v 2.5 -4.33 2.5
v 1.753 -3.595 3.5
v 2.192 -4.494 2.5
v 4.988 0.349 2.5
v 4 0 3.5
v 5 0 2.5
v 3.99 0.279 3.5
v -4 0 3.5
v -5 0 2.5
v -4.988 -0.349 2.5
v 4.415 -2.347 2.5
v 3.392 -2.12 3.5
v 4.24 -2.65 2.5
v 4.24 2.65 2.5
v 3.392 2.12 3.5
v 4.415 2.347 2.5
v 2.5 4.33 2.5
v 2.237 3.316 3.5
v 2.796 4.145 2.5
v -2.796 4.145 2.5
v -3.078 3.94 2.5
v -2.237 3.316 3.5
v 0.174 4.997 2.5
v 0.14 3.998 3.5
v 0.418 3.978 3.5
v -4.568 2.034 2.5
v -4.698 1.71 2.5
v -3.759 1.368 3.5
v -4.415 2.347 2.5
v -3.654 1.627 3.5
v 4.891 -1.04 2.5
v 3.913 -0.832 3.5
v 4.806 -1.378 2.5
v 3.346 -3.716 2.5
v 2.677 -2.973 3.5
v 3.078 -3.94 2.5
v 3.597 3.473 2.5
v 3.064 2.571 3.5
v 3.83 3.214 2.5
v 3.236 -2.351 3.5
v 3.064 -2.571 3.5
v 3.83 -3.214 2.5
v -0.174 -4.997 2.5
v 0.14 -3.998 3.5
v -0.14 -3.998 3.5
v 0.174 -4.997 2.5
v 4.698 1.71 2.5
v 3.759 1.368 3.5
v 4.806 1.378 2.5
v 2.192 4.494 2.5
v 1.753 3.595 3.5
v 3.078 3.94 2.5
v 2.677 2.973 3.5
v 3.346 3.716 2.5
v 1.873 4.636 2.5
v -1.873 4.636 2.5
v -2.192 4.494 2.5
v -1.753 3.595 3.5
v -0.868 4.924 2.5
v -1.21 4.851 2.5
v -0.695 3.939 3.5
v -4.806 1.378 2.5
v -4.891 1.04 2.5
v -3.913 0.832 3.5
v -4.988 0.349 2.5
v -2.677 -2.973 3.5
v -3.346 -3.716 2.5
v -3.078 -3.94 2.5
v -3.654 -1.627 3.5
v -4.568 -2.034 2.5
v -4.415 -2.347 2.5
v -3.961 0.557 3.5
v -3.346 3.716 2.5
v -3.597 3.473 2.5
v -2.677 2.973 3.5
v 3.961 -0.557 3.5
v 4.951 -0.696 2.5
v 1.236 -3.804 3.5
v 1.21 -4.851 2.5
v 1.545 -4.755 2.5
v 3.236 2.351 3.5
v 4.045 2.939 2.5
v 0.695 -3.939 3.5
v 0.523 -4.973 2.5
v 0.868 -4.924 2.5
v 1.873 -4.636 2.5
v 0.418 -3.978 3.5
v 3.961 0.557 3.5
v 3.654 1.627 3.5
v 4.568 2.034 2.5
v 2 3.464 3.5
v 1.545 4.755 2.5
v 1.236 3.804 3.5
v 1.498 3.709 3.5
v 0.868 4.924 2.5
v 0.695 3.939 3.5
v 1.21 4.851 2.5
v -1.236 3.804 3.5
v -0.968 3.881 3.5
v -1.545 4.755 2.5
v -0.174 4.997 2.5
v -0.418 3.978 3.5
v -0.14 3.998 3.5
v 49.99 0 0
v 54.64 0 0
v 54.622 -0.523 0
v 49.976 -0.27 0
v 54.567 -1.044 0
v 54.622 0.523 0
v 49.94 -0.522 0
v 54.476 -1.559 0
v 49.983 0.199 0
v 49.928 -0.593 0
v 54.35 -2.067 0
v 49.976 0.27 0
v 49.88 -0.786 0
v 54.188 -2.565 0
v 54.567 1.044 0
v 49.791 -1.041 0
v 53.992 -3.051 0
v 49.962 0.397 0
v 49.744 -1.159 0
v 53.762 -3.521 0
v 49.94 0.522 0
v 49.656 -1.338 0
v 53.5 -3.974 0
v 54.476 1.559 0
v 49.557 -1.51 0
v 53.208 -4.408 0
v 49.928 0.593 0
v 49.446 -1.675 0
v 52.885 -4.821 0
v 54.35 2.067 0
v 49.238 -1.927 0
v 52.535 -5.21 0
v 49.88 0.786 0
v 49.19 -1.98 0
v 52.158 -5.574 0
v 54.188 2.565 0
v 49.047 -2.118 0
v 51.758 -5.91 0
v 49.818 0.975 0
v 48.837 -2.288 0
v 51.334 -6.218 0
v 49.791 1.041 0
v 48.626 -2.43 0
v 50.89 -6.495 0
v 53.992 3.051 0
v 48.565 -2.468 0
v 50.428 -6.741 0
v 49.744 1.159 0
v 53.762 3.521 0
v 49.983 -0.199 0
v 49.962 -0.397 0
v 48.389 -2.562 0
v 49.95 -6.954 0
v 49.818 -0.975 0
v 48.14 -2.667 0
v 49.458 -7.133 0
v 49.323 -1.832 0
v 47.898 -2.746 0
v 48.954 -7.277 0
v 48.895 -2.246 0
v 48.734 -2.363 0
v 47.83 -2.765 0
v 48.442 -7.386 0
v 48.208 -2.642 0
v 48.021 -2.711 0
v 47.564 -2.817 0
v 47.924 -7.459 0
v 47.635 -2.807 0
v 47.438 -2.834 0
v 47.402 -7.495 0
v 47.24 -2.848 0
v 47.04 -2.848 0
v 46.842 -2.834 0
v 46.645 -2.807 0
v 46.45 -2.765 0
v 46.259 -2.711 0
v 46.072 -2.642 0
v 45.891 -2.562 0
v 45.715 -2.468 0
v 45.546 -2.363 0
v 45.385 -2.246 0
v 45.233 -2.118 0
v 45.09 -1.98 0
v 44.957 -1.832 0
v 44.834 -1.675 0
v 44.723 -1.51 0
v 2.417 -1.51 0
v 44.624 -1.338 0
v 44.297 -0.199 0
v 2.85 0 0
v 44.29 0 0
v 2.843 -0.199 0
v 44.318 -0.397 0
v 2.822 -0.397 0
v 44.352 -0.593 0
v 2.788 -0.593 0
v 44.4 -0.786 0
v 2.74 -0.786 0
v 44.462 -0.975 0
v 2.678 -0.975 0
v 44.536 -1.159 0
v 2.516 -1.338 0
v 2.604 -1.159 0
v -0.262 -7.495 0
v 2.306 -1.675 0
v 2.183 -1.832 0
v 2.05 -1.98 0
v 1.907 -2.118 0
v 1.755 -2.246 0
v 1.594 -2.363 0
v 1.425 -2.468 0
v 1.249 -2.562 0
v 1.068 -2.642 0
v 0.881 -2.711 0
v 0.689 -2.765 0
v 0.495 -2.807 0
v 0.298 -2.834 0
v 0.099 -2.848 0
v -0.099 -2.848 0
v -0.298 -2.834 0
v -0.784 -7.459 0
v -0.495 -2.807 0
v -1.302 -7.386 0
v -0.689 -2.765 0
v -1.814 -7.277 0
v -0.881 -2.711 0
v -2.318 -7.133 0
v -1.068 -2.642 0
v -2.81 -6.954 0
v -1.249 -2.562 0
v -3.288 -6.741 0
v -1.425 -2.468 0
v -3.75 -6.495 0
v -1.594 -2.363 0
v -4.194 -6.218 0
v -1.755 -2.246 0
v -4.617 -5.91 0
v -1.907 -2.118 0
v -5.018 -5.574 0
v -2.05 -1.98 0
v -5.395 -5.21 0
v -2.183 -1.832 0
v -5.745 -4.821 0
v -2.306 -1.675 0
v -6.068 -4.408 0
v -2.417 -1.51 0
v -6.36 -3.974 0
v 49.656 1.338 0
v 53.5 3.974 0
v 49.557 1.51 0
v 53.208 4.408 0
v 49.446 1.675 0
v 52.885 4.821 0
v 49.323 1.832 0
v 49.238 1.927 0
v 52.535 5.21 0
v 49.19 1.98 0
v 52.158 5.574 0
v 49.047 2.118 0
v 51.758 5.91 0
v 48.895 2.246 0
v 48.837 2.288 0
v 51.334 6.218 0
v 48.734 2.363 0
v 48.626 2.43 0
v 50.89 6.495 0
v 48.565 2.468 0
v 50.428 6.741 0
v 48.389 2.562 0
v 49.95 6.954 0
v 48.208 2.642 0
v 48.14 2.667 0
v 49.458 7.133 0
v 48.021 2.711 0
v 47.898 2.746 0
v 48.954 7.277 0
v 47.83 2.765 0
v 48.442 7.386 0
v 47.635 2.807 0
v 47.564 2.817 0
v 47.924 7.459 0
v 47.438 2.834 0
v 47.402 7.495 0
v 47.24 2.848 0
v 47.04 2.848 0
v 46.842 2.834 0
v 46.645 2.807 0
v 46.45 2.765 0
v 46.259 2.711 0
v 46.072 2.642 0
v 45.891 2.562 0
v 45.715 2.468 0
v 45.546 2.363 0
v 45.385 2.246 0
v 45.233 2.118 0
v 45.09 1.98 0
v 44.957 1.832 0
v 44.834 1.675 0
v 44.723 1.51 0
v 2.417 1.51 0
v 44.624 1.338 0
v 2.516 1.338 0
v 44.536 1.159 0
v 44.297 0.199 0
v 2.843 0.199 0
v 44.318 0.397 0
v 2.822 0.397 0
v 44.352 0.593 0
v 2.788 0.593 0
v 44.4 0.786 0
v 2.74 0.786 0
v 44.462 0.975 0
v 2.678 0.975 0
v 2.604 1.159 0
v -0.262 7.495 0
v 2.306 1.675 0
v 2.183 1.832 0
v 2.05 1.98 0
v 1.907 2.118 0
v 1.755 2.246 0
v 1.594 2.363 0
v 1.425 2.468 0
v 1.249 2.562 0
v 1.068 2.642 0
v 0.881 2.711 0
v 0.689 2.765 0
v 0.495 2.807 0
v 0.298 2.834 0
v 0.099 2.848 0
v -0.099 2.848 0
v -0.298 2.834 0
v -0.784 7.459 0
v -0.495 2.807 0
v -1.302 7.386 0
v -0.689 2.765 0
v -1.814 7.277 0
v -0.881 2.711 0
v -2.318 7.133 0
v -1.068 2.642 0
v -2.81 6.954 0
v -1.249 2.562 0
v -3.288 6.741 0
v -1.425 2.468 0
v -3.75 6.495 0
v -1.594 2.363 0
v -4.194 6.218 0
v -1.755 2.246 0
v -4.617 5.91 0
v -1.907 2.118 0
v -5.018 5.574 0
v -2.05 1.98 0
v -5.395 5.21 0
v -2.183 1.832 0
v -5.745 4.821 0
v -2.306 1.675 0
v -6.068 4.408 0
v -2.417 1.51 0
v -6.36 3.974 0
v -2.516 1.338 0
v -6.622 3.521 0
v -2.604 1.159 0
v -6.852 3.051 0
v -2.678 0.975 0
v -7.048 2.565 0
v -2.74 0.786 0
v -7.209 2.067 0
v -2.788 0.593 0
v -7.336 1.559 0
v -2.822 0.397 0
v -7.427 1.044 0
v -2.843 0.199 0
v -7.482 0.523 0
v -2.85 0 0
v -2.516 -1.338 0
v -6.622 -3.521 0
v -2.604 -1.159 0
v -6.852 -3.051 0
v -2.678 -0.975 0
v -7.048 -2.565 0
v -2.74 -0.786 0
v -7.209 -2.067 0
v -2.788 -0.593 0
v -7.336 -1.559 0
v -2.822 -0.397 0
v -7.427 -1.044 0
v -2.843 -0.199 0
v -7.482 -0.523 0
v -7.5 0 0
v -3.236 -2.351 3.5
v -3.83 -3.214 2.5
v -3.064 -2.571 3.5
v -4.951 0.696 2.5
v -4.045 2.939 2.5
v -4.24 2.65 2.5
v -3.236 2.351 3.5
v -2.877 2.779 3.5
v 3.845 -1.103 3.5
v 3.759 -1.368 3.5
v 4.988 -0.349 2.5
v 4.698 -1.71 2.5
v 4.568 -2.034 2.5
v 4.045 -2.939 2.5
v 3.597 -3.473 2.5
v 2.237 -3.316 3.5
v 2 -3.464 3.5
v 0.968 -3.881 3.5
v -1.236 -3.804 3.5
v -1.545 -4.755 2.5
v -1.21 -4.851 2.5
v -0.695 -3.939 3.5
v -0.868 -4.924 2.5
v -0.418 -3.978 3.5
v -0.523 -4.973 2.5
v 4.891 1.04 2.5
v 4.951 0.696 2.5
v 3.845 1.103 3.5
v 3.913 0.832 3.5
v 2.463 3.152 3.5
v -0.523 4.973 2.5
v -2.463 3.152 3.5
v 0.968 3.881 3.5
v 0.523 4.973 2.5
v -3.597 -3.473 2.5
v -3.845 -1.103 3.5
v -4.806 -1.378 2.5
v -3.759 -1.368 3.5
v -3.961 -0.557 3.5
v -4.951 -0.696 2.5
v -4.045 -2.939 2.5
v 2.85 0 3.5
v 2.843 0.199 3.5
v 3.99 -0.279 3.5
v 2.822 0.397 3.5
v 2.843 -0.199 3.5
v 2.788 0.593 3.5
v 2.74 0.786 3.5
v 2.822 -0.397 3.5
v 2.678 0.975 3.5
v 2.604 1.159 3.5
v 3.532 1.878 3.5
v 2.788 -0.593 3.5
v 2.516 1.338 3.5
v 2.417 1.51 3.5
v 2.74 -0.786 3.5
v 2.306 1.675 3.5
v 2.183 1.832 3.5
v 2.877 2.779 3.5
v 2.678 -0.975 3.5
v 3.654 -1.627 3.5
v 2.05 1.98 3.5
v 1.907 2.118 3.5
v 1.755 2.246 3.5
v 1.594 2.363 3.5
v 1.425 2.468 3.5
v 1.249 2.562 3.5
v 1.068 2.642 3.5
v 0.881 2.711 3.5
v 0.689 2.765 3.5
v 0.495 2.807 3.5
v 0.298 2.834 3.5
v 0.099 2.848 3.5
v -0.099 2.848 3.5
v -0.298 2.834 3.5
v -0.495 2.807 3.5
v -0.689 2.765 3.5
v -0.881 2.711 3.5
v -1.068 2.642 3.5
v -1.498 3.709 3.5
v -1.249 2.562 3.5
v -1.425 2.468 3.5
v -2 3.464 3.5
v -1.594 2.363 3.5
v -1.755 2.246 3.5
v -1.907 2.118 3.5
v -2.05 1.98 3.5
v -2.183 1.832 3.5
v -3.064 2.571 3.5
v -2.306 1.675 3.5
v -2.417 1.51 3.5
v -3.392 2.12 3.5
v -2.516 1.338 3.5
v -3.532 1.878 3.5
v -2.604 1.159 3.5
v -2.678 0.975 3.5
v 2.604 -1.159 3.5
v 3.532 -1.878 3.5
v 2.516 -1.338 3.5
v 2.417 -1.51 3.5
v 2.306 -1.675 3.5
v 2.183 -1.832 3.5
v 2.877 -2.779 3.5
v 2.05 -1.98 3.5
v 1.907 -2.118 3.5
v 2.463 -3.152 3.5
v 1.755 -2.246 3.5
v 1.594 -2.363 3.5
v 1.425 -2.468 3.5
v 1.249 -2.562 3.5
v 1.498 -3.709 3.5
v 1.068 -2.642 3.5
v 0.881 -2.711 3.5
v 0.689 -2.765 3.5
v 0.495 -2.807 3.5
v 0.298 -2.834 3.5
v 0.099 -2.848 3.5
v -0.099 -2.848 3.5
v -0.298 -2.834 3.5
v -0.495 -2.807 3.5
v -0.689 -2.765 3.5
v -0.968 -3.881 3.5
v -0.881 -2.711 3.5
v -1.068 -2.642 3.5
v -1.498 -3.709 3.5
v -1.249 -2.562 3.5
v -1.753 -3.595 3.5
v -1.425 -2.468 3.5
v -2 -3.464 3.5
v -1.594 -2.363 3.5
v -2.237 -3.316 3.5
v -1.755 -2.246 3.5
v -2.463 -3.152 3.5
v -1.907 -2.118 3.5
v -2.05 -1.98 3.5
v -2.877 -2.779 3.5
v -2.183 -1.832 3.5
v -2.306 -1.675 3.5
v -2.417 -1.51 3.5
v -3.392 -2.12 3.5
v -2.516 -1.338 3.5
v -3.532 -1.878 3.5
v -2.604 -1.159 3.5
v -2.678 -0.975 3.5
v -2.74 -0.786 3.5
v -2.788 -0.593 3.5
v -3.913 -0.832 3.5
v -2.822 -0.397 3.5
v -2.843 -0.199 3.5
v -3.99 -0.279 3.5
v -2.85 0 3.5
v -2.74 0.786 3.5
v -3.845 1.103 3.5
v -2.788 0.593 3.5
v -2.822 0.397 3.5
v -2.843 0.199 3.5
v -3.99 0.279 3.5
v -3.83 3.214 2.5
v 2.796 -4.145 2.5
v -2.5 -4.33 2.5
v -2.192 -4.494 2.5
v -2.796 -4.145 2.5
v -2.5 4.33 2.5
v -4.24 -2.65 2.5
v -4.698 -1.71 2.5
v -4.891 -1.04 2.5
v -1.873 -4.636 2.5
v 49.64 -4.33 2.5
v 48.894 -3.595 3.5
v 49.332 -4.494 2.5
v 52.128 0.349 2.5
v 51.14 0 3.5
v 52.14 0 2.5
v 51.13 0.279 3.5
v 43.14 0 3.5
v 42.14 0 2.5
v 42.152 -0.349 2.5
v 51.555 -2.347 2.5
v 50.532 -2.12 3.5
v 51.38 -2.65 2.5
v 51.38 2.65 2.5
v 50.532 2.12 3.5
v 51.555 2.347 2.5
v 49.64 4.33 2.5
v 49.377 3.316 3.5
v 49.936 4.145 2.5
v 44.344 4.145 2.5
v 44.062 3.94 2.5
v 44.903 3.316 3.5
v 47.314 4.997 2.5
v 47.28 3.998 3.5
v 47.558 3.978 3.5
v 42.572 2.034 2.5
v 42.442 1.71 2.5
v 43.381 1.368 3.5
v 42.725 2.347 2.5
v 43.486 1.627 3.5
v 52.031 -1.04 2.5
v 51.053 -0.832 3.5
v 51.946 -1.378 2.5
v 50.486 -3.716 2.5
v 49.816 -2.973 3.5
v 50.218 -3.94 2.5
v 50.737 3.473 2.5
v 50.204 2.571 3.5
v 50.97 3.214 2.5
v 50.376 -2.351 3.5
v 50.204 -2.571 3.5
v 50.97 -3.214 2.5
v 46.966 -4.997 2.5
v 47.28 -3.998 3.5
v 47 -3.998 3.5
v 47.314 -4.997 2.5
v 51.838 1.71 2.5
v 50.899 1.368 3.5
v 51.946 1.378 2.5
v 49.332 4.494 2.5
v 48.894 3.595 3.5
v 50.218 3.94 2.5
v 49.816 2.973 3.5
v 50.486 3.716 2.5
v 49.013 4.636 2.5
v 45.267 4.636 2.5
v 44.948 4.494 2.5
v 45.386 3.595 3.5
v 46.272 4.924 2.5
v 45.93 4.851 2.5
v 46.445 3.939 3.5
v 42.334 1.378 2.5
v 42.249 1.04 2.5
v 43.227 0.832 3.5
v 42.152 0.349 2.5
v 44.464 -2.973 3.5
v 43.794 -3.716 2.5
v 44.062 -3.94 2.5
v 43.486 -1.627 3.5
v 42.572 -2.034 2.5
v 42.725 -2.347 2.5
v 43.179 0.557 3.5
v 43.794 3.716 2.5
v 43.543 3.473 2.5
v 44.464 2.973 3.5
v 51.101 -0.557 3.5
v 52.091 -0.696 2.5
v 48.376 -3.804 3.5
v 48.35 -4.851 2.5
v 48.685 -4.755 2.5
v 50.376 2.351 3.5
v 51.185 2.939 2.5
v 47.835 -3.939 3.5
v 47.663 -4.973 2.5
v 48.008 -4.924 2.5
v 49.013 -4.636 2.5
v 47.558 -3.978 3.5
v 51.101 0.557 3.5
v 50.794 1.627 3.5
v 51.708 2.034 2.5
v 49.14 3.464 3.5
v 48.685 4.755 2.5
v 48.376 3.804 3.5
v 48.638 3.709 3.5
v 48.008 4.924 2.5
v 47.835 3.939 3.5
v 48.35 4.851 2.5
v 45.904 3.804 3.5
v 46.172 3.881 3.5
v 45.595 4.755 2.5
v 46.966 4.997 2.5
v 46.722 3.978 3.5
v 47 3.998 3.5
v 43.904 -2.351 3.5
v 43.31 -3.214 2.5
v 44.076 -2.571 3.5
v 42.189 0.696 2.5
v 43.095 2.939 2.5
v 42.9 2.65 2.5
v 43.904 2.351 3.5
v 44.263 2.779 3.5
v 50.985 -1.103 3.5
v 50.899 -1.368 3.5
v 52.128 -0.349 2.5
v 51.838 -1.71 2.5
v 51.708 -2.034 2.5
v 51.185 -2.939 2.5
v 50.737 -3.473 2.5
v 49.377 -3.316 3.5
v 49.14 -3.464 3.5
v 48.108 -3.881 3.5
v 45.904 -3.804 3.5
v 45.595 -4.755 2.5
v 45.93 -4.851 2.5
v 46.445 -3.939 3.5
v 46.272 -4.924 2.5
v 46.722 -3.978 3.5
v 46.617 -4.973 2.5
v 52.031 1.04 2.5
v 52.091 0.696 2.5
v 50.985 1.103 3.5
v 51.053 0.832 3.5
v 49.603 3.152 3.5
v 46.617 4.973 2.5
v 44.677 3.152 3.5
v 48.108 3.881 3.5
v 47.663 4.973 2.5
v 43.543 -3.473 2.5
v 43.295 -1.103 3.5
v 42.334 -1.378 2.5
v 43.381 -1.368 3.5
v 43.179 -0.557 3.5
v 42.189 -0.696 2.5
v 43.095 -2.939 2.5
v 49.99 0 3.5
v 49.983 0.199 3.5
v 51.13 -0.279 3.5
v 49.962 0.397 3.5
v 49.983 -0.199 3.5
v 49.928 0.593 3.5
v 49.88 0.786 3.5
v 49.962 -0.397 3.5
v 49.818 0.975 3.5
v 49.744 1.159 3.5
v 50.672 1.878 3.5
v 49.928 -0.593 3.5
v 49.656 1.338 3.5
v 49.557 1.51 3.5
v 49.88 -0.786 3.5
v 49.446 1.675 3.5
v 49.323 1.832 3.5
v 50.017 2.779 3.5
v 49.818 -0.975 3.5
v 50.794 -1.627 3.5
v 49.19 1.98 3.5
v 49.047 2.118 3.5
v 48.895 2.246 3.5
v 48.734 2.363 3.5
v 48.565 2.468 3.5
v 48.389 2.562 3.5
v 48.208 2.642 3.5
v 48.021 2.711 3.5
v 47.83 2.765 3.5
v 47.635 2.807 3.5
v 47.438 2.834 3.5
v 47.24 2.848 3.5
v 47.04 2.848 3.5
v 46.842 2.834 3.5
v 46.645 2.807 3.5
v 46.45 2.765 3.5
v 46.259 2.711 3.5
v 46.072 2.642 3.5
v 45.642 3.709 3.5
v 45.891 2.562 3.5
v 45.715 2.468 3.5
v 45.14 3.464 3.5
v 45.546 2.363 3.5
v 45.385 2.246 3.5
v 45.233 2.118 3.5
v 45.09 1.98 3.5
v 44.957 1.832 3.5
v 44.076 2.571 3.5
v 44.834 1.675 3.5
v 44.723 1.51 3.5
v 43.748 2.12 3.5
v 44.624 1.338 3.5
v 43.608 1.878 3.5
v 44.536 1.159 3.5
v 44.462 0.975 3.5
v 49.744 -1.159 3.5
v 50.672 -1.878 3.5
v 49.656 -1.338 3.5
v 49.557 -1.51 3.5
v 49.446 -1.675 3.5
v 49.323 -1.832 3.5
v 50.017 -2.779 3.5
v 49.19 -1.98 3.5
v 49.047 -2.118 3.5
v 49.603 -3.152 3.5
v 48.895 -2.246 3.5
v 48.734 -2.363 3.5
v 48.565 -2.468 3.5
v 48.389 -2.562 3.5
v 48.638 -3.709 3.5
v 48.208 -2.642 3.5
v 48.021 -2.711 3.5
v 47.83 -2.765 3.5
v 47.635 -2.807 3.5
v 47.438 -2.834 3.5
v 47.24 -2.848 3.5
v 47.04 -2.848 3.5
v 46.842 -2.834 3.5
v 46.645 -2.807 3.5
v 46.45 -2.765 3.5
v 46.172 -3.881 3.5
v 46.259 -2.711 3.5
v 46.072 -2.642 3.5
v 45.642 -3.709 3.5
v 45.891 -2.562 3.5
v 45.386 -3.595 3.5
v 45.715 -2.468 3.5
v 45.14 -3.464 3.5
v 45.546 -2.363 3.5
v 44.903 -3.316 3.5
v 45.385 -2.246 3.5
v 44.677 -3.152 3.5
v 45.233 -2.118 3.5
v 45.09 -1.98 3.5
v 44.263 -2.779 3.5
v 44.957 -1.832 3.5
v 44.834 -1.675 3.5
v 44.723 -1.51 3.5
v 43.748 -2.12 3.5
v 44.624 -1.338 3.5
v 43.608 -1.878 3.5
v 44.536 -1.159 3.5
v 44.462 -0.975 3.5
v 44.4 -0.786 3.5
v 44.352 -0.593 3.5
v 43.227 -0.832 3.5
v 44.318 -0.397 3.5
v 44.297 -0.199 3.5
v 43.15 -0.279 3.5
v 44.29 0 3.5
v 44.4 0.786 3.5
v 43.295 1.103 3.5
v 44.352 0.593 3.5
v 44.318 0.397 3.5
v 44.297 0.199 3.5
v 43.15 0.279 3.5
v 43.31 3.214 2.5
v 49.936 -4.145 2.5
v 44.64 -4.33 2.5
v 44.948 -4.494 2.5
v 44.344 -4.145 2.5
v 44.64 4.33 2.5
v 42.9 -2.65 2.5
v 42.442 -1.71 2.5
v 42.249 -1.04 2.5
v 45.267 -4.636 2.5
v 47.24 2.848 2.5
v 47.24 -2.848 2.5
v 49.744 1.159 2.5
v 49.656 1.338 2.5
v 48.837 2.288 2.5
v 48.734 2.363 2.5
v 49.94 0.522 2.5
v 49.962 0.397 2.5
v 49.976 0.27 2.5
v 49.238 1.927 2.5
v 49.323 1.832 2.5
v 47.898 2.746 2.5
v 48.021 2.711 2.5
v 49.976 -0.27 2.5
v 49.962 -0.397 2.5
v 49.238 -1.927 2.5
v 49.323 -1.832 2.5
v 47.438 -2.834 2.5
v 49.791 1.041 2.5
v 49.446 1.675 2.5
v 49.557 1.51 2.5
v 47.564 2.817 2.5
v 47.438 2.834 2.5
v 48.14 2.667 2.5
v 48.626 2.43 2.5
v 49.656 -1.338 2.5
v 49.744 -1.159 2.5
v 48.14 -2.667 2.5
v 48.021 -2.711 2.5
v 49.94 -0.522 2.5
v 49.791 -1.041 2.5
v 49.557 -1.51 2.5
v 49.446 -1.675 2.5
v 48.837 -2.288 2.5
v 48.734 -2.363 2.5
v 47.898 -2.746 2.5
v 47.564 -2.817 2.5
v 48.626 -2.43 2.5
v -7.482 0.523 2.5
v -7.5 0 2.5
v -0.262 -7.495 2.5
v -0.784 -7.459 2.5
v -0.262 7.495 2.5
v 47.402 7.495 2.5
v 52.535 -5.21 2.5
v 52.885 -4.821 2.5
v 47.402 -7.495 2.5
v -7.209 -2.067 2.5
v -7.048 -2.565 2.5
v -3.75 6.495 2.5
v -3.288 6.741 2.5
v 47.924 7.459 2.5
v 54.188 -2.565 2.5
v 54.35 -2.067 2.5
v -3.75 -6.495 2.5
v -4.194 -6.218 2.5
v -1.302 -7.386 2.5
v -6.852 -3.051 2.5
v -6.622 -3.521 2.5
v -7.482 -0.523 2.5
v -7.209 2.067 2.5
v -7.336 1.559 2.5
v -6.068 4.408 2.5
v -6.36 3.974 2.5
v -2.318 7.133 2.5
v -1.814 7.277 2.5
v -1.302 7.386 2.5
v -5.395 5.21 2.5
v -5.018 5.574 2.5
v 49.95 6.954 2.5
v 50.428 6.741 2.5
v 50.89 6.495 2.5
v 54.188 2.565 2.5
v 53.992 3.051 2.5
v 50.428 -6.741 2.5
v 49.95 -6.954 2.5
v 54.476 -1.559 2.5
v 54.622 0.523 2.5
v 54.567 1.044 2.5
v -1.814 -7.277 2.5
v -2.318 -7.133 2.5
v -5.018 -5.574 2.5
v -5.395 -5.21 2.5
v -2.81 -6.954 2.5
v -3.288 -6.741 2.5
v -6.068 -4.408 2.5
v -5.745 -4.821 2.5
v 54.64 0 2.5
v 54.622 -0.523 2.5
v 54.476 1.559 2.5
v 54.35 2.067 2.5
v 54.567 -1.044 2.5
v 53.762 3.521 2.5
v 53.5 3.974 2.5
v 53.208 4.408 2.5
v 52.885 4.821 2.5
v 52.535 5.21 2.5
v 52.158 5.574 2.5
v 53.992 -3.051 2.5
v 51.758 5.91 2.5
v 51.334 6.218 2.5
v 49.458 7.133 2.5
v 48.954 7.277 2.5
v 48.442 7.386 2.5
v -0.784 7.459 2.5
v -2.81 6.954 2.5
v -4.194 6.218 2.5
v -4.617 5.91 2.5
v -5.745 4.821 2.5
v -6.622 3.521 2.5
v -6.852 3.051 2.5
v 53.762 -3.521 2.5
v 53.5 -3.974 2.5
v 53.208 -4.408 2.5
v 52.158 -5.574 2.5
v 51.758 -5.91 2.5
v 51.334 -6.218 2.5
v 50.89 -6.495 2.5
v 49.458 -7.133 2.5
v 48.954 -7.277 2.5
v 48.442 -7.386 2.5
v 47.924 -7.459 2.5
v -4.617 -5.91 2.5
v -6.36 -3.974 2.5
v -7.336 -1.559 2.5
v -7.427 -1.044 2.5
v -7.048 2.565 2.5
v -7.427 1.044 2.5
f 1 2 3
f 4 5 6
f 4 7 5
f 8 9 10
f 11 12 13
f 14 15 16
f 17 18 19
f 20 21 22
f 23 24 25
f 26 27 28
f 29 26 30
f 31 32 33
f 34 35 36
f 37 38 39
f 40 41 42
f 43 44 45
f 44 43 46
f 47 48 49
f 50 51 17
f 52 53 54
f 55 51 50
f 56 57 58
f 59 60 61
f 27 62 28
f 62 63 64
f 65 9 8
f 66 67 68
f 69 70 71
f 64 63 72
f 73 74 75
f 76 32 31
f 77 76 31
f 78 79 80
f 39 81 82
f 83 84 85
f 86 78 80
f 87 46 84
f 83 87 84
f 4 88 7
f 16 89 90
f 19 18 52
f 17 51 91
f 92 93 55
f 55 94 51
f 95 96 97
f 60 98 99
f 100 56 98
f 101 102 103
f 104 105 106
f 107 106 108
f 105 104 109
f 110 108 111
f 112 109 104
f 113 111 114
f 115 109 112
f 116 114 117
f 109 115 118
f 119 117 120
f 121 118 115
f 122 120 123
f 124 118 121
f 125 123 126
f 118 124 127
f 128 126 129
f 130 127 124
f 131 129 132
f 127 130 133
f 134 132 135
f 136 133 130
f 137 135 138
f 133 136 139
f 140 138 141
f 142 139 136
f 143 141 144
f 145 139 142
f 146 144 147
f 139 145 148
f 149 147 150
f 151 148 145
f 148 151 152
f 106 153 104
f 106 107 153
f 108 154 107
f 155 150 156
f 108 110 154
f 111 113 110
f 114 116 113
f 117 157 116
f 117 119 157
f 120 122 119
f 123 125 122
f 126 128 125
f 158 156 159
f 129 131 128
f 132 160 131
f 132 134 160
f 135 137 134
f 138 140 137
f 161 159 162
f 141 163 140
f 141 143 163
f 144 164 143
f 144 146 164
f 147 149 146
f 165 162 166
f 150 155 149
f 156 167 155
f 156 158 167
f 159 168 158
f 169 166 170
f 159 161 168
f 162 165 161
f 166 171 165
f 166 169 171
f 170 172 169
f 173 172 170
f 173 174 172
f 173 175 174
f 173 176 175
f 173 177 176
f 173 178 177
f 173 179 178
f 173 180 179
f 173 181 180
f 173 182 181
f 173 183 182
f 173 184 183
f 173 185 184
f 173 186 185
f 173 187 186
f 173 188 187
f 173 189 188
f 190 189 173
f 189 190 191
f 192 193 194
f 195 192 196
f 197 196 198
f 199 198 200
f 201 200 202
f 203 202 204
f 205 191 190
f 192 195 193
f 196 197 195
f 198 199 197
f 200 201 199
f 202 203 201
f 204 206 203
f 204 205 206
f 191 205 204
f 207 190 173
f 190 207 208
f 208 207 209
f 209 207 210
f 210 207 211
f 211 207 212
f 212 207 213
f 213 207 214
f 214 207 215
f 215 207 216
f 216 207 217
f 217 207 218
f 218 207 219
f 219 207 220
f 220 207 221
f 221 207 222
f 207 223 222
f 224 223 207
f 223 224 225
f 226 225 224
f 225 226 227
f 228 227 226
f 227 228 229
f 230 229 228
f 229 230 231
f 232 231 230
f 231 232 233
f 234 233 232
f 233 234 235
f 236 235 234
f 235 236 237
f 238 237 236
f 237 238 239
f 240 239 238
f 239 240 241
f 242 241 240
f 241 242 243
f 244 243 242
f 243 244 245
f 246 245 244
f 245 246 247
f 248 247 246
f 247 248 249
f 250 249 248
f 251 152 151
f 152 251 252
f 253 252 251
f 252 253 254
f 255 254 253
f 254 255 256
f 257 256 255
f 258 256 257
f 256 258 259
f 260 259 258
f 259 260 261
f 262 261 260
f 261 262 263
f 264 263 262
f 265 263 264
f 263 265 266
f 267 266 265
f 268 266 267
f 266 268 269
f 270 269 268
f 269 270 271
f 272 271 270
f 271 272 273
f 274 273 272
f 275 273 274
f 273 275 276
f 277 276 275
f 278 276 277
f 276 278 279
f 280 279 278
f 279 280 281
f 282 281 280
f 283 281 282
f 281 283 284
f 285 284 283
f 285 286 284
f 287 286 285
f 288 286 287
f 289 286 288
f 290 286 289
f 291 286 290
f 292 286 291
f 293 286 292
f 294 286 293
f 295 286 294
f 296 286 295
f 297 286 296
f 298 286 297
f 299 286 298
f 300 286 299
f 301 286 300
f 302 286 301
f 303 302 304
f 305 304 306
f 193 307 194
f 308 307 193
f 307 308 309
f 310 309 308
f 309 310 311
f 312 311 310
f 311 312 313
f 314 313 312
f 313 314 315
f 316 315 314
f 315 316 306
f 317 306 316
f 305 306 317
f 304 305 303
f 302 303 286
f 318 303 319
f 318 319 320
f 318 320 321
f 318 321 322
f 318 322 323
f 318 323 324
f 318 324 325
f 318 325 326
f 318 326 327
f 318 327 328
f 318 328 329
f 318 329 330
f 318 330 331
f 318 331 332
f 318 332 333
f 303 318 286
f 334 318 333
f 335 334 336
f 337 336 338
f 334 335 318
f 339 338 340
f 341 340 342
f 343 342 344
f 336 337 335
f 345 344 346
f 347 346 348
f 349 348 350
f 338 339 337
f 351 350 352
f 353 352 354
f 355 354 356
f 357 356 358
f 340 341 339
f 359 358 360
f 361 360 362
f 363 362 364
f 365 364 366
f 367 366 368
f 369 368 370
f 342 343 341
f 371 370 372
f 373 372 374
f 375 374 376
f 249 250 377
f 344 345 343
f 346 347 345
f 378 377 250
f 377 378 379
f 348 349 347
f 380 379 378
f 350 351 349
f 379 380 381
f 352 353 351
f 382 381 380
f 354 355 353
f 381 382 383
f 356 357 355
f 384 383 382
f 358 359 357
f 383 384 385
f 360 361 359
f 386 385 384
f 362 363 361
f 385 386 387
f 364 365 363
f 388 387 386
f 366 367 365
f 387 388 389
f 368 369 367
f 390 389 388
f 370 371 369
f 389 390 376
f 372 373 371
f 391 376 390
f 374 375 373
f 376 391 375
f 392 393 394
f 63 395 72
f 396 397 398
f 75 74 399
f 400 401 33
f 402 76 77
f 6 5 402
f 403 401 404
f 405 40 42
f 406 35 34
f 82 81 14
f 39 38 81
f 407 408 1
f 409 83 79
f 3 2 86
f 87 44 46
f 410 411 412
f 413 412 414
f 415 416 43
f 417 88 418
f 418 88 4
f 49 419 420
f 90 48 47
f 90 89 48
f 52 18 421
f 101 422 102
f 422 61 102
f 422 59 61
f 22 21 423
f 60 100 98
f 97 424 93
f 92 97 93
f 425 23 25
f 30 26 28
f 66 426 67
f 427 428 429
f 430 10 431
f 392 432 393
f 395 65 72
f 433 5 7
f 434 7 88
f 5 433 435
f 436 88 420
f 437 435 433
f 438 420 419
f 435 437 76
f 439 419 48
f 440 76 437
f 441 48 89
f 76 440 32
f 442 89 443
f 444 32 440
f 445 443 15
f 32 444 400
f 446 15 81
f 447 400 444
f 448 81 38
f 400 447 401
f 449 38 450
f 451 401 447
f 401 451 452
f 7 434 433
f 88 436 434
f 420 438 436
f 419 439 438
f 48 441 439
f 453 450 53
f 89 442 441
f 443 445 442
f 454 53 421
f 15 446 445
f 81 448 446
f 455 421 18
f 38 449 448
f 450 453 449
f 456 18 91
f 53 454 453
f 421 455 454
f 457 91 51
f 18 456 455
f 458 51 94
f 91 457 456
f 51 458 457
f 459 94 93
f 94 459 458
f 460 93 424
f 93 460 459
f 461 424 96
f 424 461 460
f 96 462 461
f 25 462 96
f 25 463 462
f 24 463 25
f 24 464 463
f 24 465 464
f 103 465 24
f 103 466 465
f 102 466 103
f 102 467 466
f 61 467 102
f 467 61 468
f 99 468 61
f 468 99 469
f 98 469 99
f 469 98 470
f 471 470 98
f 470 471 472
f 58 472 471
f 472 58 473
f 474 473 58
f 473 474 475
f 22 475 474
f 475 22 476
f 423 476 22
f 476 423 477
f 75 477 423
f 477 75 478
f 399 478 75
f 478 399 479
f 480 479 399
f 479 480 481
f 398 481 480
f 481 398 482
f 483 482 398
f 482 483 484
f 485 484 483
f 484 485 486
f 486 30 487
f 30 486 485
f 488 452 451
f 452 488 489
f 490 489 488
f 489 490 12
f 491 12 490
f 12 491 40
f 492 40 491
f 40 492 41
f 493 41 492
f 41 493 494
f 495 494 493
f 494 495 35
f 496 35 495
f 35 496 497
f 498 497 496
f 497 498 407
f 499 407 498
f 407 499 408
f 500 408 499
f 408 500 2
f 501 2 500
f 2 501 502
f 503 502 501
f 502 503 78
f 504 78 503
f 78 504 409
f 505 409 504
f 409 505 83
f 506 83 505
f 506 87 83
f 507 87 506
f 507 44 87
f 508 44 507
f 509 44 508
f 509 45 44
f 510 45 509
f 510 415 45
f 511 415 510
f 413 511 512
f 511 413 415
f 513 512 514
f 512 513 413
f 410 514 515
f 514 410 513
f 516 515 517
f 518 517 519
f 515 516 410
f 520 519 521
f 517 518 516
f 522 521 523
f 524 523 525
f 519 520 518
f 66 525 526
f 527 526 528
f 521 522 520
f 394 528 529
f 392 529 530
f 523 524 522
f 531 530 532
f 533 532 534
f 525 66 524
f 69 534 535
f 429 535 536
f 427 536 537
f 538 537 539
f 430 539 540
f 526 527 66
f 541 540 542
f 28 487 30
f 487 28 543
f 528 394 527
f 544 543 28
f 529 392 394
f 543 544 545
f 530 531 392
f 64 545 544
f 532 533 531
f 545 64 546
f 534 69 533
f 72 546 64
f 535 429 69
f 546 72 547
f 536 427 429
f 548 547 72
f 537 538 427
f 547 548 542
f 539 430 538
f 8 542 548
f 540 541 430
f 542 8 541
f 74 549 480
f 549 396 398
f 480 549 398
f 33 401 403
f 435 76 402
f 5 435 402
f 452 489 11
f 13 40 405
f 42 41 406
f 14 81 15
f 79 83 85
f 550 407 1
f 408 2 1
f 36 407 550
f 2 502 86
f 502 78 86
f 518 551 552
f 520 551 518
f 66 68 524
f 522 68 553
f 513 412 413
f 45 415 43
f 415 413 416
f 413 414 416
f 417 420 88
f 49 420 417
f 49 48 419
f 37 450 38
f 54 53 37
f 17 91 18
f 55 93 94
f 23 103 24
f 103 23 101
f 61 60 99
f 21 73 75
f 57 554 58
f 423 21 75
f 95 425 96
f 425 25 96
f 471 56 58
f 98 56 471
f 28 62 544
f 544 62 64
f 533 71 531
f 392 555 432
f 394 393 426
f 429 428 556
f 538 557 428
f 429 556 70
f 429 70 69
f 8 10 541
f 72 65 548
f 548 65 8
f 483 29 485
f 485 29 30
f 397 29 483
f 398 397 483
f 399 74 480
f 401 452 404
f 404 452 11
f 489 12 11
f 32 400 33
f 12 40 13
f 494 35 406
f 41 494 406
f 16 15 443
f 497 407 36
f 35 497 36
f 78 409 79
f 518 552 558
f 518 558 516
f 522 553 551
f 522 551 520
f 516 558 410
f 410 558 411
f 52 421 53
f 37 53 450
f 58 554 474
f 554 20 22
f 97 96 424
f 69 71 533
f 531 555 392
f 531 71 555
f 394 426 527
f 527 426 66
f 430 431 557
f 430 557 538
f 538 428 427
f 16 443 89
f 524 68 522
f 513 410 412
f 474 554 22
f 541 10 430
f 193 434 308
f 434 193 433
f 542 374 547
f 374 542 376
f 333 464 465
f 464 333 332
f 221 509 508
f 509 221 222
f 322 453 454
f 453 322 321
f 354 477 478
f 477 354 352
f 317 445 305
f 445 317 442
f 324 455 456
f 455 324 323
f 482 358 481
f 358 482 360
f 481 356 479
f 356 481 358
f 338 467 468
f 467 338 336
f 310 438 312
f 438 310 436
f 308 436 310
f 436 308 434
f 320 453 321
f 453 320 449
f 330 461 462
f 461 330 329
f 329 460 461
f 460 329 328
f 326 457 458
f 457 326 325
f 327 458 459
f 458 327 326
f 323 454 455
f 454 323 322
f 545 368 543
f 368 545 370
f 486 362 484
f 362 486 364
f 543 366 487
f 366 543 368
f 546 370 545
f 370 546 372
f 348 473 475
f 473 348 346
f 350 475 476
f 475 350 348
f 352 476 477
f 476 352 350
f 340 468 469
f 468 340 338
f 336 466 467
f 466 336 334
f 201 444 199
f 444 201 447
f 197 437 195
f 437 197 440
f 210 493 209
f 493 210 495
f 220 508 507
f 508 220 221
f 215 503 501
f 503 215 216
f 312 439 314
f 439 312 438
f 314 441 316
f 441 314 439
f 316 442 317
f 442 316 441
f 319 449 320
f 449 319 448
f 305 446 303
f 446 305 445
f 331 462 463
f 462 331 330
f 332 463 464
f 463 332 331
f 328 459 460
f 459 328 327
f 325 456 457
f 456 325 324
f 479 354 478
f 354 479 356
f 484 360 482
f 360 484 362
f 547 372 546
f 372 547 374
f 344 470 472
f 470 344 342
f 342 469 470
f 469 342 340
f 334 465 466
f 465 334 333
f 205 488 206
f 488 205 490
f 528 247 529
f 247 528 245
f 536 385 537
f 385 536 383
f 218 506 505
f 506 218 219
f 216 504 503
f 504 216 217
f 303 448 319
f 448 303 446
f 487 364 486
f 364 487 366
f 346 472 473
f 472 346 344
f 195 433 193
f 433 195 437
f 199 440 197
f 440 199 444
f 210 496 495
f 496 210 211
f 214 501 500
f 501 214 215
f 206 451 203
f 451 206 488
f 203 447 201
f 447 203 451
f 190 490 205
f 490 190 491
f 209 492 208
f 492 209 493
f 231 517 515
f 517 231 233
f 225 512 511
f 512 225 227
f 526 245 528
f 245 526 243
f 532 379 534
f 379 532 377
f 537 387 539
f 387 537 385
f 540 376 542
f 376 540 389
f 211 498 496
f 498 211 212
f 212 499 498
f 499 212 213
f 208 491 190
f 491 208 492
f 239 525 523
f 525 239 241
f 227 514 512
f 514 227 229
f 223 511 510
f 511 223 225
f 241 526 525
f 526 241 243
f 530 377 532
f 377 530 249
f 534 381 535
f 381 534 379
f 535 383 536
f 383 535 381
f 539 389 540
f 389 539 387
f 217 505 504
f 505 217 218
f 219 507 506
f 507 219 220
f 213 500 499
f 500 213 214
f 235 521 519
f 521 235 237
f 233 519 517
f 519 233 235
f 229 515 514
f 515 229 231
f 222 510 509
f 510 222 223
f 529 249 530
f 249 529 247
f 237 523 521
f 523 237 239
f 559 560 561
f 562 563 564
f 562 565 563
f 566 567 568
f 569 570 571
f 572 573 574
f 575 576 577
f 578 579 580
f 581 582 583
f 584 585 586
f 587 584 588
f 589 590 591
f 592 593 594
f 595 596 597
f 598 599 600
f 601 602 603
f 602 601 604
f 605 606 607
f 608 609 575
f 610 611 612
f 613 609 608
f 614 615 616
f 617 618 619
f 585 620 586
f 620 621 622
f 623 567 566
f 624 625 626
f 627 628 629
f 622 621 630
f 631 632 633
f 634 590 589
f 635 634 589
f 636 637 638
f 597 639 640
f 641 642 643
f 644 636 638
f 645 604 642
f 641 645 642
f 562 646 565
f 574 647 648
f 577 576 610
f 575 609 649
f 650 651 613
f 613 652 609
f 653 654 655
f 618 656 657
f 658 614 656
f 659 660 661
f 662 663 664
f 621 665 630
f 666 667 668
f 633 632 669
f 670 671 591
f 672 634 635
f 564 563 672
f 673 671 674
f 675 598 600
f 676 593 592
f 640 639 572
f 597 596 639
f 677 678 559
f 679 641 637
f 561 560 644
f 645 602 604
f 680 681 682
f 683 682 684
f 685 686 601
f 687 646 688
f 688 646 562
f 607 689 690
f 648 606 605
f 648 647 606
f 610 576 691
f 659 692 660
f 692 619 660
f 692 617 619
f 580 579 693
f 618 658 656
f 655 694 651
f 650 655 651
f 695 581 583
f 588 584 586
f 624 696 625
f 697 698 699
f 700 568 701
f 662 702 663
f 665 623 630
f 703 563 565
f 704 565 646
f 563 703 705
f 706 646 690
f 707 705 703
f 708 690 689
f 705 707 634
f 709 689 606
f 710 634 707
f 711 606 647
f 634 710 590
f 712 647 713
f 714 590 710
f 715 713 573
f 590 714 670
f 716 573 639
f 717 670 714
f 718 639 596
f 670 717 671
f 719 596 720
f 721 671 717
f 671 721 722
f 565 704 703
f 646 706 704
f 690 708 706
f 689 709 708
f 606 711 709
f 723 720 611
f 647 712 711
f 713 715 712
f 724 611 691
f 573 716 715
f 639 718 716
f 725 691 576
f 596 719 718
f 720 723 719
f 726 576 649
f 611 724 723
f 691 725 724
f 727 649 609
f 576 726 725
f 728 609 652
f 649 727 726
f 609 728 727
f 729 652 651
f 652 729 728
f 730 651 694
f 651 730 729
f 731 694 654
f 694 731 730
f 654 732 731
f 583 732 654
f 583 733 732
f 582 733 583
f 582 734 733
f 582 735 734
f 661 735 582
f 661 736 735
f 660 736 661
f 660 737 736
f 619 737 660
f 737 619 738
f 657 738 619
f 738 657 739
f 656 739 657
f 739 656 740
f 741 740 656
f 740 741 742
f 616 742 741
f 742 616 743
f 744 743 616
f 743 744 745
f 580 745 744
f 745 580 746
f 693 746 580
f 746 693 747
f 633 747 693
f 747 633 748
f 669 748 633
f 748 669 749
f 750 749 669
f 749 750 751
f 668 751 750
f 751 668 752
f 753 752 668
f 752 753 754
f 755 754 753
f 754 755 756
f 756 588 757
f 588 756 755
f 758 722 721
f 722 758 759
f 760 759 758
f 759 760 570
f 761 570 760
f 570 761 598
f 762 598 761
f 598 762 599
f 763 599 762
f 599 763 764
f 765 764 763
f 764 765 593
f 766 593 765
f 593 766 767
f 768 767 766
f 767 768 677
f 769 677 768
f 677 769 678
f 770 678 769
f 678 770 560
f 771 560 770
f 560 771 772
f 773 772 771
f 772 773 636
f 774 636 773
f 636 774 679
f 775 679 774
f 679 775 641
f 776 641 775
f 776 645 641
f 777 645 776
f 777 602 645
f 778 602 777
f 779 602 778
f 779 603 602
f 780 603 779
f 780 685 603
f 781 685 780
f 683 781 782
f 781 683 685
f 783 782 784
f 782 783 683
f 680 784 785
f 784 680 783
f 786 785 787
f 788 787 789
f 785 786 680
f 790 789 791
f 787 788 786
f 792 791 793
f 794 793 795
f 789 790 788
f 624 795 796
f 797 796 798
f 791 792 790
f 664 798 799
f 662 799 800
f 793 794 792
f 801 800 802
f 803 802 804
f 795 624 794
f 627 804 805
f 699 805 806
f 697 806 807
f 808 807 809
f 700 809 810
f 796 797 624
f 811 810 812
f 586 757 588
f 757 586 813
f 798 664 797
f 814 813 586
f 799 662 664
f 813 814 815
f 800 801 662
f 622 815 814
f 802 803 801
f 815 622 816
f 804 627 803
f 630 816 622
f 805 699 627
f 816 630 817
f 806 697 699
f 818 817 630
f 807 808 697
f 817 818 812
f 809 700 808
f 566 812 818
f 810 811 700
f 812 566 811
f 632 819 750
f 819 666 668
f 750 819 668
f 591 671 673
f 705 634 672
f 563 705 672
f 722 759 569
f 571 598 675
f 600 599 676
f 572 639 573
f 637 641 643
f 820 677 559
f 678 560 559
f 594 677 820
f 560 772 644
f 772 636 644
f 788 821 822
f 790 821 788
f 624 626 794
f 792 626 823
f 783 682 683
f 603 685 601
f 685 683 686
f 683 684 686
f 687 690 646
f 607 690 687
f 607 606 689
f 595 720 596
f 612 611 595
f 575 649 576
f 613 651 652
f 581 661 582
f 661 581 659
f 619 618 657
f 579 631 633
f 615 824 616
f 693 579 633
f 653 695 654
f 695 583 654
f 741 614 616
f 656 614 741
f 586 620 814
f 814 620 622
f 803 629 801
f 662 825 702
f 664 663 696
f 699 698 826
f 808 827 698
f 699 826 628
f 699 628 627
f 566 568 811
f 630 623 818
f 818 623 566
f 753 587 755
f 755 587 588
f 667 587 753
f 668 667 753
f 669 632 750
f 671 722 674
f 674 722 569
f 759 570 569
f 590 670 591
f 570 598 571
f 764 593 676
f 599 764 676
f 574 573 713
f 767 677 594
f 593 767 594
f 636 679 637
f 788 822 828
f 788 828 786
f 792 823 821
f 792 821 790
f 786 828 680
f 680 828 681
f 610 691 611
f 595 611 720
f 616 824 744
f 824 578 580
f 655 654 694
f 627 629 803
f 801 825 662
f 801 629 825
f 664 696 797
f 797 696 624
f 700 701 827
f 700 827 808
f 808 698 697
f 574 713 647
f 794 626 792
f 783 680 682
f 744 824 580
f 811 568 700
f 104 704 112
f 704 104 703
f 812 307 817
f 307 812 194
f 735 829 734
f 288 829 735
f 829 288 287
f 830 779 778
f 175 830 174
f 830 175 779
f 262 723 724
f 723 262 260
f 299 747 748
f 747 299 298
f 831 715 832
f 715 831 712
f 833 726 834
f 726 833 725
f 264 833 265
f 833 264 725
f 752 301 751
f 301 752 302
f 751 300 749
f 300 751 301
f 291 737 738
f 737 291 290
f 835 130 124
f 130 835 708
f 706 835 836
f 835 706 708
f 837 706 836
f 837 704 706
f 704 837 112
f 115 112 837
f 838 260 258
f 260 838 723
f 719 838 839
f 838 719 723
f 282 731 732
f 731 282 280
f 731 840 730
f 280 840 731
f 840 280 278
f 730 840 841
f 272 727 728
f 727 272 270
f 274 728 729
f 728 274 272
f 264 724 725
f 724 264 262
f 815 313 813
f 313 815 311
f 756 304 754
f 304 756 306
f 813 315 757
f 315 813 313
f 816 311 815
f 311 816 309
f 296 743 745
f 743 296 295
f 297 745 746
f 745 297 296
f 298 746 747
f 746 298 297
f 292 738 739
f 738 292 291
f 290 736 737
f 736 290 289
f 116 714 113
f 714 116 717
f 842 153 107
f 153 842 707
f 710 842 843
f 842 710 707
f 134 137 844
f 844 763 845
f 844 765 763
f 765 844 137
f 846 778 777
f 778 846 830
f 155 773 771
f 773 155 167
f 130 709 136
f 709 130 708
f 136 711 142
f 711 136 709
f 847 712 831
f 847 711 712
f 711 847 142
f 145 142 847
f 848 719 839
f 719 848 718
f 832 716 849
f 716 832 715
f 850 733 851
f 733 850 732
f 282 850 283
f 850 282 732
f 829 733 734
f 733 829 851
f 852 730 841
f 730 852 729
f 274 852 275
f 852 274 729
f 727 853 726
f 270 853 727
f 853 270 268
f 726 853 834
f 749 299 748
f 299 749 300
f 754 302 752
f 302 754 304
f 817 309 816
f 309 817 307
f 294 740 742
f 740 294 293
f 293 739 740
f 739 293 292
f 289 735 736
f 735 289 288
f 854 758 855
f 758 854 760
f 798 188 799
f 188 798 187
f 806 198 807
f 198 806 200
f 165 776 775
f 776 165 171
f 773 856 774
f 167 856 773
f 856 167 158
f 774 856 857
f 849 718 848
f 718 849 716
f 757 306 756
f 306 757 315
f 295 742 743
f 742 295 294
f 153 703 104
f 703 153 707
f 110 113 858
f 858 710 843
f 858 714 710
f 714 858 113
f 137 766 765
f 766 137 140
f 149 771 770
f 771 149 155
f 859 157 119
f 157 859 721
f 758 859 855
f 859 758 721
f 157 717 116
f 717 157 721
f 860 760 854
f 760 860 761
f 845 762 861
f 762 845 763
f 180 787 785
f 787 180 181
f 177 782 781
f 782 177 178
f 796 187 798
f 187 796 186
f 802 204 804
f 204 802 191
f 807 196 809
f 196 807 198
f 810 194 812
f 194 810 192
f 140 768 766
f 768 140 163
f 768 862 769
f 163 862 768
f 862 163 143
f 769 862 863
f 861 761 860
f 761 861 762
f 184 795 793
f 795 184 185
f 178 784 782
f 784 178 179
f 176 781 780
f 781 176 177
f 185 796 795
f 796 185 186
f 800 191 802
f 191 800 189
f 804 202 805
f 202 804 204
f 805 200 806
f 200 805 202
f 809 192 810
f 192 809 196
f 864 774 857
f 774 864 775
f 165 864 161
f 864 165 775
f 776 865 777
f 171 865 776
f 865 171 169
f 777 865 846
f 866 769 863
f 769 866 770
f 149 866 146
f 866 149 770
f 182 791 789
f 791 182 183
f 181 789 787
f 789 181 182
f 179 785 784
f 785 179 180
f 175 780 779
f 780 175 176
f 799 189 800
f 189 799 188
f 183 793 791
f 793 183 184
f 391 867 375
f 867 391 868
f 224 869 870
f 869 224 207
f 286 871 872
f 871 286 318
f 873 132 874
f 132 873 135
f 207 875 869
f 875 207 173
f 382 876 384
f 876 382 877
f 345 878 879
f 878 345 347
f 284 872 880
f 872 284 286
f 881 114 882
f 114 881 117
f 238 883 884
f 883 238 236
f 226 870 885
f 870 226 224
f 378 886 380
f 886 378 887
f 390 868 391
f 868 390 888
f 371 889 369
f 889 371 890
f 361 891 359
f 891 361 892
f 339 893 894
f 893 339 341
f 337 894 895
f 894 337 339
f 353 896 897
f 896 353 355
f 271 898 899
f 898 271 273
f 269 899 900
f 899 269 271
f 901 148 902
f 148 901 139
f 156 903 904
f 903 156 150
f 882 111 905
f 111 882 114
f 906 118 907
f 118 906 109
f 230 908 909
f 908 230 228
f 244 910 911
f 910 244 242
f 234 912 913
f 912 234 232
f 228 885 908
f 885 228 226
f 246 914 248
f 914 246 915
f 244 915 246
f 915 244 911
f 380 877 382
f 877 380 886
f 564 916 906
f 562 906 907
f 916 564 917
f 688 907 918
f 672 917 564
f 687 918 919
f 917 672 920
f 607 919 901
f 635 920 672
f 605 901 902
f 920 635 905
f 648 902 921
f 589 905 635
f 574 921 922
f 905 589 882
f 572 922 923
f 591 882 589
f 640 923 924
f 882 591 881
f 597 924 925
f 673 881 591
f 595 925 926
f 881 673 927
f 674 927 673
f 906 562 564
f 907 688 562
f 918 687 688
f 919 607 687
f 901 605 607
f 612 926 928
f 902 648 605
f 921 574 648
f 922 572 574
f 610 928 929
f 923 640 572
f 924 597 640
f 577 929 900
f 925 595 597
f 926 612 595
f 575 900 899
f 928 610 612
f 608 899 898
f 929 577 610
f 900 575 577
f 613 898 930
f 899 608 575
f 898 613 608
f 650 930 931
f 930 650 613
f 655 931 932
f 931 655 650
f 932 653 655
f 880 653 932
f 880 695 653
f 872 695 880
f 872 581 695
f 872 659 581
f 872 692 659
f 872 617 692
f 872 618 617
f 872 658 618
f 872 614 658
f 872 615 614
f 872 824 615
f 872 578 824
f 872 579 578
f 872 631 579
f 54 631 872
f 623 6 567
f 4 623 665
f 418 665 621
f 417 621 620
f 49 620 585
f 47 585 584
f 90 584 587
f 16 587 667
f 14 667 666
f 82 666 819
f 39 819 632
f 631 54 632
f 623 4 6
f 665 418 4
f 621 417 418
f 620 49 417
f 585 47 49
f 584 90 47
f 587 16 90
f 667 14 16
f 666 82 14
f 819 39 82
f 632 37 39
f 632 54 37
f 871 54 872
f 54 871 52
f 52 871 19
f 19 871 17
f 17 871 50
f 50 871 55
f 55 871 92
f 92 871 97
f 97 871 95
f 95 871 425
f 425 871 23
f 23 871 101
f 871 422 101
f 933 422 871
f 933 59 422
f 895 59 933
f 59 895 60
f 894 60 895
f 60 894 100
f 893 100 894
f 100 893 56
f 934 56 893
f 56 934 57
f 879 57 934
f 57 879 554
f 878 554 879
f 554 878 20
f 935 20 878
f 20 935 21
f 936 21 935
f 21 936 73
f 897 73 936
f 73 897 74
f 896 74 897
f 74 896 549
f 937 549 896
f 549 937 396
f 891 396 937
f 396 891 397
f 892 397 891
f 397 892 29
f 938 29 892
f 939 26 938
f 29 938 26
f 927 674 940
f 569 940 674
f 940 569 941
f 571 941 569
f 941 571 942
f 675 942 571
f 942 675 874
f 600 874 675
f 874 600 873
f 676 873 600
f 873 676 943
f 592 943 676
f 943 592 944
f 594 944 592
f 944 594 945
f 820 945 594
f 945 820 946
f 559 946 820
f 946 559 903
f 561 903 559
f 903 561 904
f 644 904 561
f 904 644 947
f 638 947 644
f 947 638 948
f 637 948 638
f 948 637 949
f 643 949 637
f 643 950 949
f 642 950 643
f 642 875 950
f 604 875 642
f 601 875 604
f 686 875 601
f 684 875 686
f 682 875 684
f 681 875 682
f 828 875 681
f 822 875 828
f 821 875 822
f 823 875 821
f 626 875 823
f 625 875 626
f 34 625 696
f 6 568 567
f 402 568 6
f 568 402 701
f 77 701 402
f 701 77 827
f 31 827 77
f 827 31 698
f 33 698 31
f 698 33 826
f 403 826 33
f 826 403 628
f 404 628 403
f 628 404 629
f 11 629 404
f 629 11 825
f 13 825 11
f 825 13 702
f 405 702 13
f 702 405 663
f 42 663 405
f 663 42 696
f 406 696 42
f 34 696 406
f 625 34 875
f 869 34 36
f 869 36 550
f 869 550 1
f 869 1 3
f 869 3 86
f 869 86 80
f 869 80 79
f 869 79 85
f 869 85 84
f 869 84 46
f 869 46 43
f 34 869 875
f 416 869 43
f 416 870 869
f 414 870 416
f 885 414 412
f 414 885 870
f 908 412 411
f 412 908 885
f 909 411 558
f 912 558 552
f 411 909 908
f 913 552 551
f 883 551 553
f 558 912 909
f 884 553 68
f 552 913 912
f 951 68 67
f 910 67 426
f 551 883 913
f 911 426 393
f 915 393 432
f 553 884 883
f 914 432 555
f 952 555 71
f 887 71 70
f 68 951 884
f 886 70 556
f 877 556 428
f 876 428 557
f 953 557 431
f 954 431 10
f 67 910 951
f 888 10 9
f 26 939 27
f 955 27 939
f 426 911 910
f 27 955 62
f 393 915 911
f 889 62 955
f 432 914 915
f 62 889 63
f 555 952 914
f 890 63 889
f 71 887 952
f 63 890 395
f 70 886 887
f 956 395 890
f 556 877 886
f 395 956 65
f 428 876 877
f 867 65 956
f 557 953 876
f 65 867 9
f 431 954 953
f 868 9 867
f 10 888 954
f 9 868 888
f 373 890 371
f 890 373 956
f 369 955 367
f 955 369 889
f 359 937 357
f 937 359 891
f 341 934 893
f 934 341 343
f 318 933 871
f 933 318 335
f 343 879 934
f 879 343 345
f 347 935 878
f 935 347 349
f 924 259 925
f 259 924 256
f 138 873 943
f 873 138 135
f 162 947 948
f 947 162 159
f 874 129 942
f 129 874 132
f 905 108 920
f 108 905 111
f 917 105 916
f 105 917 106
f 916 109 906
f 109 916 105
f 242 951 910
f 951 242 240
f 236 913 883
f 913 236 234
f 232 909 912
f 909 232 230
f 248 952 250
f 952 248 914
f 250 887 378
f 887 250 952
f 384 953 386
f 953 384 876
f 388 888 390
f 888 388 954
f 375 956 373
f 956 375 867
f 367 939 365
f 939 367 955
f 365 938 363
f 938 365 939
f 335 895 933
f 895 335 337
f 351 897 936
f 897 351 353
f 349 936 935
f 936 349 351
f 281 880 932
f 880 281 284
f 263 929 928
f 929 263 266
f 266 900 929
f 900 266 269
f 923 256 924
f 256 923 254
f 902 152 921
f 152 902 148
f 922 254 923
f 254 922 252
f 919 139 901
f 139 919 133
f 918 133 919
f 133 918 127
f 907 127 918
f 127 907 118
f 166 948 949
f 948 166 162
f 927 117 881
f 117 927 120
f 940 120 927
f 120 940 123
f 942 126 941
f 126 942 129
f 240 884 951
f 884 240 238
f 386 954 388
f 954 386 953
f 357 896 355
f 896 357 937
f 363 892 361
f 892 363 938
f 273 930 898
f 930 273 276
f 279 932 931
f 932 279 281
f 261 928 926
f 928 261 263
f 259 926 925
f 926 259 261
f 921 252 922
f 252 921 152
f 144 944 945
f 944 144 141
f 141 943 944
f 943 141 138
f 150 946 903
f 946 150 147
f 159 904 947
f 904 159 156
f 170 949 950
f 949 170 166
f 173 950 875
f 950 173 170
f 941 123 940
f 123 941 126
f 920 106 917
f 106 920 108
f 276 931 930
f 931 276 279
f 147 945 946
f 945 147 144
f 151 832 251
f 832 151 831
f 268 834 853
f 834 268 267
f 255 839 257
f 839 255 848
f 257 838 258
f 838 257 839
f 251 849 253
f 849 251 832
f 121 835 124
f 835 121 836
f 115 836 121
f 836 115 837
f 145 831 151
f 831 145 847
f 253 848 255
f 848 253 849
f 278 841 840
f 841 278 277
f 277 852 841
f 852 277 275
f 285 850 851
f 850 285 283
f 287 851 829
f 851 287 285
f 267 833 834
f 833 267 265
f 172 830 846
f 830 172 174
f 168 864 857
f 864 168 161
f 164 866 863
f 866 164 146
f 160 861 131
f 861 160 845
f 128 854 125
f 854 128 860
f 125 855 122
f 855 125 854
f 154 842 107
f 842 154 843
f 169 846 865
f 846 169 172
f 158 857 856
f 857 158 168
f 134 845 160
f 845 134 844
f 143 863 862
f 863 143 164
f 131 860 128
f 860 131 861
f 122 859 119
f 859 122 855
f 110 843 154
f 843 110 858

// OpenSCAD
innerDiameter = 5.7;
outerDiameter = 10;
lipDiameter = 8;
lipHeight = 1;

guardThickness = 2;
guardFlangeDiameter = 15;
nema23ScrewHoleSeparation = 47.14;

shortAxisInsideWidth = 41.7;
smallBearingWidth = 5;
shortAxisBearingSpacerHeight1 = 1.5;
shortAxisBearingSpacerHeight2 = shortAxisInsideWidth - 2 * smallBearingWidth - shortAxisBearingSpacerHeight1;

longAxisInsideWidth = 19.7;
longAxisBearingSpacerHeight = (longAxisInsideWidth - 2 * smallBearingWidth)/2;


module Spacer(height, lipHeight) {
    difference() {
        hull() {
            cylinder(h=height-lipHeight, r=outerDiameter/2, $fn=90);
            cylinder(h=height, r=lipDiameter/2, $fn=90);
        }
        cylinder(h=height, r=innerDiameter/2, $fn=90);
    }
}

module ShortAxisSpacers() {
    for(i=[outerDiameter/2+2, outerDiameter*3/2+4]) {
        translate([-outerDiameter/2-2,i,0]) Spacer(shortAxisBearingSpacerHeight1, lipHeight);
        translate([outerDiameter/2+2,i,0]) Spacer(shortAxisBearingSpacerHeight2-guardThickness, 0);
    }
    for(i=[-outerDiameter/2-2,outerDiameter/2+2],j=[-outerDiameter/2-2,-3*outerDiameter/2-4]) {
        translate([i,j,0]) Spacer(shortAxisInsideWidth,0);
    }
}

module GuardPlate() {
    holeOffset = [nema23ScrewHoleSeparation,0,0];
    Spacer(shortAxisBearingSpacerHeight1 + guardThickness, 1);
    translate(holeOffset)
        Spacer(shortAxisBearingSpacerHeight1 + guardThickness, 1);
    difference() {
        hull() {
            // add extra thickness to match the bottom of the lip of the spacer
            cylinder(h=guardThickness+(shortAxisBearingSpacerHeight1-lipHeight), r=guardFlangeDiameter/2, $fn=90);
            translate(holeOffset)
                cylinder(h=guardThickness+(shortAxisBearingSpacerHeight1-lipHeight), r=guardFlangeDiameter/2, $fn=90);
        }
        cylinder(h=shortAxisBearingSpacerHeight1+guardThickness, r=innerDiameter/2, $fn=90);
        translate(holeOffset)
            cylinder(h=shortAxisBearingSpacerHeight1+guardThickness, r=innerDiameter/2, $fn=90);
    }
}

/*
ShortAxisSpacers();

translate([2* outerDiameter + 2, -nema23ScrewHoleSeparation/2, 0])
    rotate([0,0,90]) GuardPlate();
*/
GuardPlate();
